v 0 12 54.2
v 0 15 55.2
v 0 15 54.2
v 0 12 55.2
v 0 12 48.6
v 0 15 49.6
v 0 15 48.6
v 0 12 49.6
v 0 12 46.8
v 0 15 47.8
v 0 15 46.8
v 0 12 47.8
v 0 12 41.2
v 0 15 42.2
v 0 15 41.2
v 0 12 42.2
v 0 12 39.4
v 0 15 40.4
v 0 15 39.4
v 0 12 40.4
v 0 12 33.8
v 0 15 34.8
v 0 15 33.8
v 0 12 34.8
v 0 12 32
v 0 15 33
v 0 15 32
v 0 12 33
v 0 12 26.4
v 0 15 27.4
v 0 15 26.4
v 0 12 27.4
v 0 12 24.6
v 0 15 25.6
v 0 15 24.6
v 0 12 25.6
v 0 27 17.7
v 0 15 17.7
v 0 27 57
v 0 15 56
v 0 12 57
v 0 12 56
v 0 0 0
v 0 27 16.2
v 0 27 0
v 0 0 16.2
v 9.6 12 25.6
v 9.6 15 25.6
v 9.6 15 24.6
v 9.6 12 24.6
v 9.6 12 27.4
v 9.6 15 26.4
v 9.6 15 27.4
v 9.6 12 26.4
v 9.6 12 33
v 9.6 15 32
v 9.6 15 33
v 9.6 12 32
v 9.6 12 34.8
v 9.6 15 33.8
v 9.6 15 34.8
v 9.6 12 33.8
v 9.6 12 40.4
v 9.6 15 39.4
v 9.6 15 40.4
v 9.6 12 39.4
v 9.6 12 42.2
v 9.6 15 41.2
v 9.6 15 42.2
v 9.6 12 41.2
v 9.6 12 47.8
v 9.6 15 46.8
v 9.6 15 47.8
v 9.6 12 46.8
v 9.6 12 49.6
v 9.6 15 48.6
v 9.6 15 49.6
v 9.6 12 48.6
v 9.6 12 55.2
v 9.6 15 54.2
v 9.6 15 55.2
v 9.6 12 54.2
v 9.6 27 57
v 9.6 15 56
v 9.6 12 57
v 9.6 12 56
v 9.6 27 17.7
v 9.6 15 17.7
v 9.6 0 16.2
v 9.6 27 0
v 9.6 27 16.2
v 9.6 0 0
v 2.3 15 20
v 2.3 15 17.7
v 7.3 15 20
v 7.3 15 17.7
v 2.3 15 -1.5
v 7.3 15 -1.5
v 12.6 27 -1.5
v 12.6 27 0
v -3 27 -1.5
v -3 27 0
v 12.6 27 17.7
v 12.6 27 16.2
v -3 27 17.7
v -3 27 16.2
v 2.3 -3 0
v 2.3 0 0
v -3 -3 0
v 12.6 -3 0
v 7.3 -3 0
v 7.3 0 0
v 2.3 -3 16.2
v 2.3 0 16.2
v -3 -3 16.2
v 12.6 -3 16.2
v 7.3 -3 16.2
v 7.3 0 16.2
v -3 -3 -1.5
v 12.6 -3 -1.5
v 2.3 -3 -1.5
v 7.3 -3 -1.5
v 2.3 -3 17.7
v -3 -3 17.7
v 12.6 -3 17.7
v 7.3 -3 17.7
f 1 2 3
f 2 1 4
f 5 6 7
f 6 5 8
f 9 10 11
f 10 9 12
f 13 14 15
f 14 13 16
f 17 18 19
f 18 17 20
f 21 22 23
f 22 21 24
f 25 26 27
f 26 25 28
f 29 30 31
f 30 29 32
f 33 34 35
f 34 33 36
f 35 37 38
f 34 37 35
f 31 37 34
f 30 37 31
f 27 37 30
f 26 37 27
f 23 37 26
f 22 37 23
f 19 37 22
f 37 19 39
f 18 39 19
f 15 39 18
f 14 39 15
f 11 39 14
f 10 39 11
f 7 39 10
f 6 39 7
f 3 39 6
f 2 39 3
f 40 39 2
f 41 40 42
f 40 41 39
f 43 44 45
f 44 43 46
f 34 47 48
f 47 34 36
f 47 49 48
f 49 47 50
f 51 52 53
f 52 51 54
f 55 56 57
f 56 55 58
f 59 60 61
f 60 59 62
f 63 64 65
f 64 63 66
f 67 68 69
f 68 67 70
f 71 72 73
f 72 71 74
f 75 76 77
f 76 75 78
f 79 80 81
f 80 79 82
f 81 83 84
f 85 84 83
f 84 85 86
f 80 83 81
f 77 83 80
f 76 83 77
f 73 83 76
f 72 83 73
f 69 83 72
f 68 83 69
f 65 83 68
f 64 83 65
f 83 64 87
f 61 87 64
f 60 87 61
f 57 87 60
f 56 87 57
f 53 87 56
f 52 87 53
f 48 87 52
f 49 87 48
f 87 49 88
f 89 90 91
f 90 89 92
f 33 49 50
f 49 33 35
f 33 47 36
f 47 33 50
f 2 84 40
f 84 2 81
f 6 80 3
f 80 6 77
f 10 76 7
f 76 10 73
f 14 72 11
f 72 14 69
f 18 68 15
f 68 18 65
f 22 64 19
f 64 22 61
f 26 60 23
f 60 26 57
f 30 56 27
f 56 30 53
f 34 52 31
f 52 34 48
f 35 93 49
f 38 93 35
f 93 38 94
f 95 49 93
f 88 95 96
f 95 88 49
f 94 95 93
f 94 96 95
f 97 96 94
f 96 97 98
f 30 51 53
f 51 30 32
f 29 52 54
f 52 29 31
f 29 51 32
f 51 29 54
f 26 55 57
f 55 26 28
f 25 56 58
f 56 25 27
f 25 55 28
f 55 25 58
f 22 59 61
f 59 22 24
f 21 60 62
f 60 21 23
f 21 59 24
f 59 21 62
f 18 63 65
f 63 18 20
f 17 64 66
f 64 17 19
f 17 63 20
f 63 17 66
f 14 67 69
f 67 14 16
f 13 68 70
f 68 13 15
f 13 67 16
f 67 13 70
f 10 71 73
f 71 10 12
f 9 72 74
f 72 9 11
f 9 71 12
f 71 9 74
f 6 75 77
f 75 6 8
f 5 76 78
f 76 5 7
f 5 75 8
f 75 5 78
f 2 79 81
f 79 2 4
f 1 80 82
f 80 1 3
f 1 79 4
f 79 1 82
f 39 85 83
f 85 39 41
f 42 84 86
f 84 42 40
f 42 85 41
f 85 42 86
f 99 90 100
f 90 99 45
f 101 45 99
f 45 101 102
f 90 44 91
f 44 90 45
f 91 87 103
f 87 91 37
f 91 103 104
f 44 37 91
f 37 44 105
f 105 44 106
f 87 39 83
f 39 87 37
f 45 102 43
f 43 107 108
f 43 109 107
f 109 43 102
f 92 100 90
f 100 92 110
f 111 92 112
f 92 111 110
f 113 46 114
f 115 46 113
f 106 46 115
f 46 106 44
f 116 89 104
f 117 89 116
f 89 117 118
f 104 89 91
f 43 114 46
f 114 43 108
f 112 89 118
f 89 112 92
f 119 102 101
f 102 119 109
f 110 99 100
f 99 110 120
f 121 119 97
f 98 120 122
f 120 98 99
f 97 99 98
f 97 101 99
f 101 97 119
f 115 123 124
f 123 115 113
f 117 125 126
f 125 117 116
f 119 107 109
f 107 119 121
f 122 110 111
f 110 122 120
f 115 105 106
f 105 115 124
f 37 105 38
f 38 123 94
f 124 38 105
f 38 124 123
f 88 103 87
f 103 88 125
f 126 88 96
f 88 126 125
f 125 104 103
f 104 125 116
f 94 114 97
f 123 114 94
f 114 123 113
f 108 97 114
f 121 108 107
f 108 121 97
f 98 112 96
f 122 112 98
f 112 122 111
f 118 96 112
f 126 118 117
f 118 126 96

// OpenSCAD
// file: line.scad
//cube([100,100,15.8]);

servoW=12.6+0.4;
servoH=23.0+0.4;
    waku=4;

module servo(){
    cube([12.6+0.4,23.0+0.4,26.7]);
    translate([0,(23.0-32.4)/2,15.8])
    cube([12.6+0.4,32.4,2.4]);
    translate([(13-4.2)/2,23,-100])
    cube([4.2,5,18+100]);
}

module servo4_0(){
translate([servoW*4,0,0])
scale([-1,1,1])
    for(i = [0:3]){
        translate([i*13,0,(2.4+5)*i]){
            servo();
        }
    }
}

module servo4(){
translate([servoW*4,0,0])
scale([-1,1,1])
difference(){
union(){
    translate([-waku,-waku,0])
    cube([waku,waku*2+servoH,15.8]);
    translate([0,-waku,0]){
    for(i = [0:3]){
        translate([i*13,0,0]){
            cube([waku+servoW,waku*2+servoH,15.8+(2.4+5)*i]);
        }
    }
    }
}


union(){
    for(i = [0:3]){
        translate([i*13,0,(2.4+5)*i]){
            servo();
        }
    }
    
}
}
}

module servo4_rect(l=servoW*4+waku*2){
    translate([-waku,-waku,0])
    cube([l,servoH+waku+2,15.8]);

}


module hikkake(l=servoW*4,d=10,fixPos=true,haba=0.8,thin=2){
    x=0;
    if(fixPos){
        x=-waku;
    }
    for(i=[1:5]){
        translate([0,-d,(2.4+5)*i+15.8+2.4-thin])
            cube([l,d,thin]);  
        translate([0,-d,(2.4+5)*i+15.8+2.4+haba])
            cube([l,d,thin]);  
    }

}

//servo4_0();
//servo();
//hikkake();
//

//for(i=[0:4]){
//translate([-waku,waku+servoH,(2.4+5)*i+15.8+2.4])
//cube([servoW*4,10,2]);
//}
//translate([-waku,waku+servoH,(2.4+5)+15.8+2.4])
//cube([servoW*2+waku,10,2]);
//translate([-waku,waku+servoH,(2.4+5)*2+15.8+2.4])
//cube([servoW+waku,10,2]);
//
//translate([100,0,0])
//servo4_rect();
//
//translate([0,50,0])
//servo4_rect();
// main file
include<line.scad>
//echo(servo*4+waku*2-0.4);
//translate([-10,0,0])
//cube([10-0.4,servoH+waku-0.4,(2.4+5)*4+15.8+2.4]);
//hikkake(l=10-0.4,d=2,thin=1,fixPos=false);
//servo();


waku1=3;

difference(){
    union(){
        cube([10-0.4,servoH+waku-0.4,15.8+0.4]);
        translate([0,15,0])
        {
            cube([10-0.4,servoH+waku-0.4-15,(2.4+5)*5+15.8+2.4+1+0.8]);
            hikkake(l=10-0.4,d=3,thin=1,fixPos=false);
        }
        translate([-waku1,-waku1,-1.5])
            cube([10-0.4+waku1*2,servoH+waku-0.4+waku1,1.5]);
        translate([-waku1,-waku1,15.8+0.4])
            cube([10-0.4+waku1*2,servoH+waku-0.4+waku1,1.5]);
        //servo4_0();
    }
    translate([(10-0.4-5)/2,-waku1,-50])
    cube([5,15+waku1,70]);
}
